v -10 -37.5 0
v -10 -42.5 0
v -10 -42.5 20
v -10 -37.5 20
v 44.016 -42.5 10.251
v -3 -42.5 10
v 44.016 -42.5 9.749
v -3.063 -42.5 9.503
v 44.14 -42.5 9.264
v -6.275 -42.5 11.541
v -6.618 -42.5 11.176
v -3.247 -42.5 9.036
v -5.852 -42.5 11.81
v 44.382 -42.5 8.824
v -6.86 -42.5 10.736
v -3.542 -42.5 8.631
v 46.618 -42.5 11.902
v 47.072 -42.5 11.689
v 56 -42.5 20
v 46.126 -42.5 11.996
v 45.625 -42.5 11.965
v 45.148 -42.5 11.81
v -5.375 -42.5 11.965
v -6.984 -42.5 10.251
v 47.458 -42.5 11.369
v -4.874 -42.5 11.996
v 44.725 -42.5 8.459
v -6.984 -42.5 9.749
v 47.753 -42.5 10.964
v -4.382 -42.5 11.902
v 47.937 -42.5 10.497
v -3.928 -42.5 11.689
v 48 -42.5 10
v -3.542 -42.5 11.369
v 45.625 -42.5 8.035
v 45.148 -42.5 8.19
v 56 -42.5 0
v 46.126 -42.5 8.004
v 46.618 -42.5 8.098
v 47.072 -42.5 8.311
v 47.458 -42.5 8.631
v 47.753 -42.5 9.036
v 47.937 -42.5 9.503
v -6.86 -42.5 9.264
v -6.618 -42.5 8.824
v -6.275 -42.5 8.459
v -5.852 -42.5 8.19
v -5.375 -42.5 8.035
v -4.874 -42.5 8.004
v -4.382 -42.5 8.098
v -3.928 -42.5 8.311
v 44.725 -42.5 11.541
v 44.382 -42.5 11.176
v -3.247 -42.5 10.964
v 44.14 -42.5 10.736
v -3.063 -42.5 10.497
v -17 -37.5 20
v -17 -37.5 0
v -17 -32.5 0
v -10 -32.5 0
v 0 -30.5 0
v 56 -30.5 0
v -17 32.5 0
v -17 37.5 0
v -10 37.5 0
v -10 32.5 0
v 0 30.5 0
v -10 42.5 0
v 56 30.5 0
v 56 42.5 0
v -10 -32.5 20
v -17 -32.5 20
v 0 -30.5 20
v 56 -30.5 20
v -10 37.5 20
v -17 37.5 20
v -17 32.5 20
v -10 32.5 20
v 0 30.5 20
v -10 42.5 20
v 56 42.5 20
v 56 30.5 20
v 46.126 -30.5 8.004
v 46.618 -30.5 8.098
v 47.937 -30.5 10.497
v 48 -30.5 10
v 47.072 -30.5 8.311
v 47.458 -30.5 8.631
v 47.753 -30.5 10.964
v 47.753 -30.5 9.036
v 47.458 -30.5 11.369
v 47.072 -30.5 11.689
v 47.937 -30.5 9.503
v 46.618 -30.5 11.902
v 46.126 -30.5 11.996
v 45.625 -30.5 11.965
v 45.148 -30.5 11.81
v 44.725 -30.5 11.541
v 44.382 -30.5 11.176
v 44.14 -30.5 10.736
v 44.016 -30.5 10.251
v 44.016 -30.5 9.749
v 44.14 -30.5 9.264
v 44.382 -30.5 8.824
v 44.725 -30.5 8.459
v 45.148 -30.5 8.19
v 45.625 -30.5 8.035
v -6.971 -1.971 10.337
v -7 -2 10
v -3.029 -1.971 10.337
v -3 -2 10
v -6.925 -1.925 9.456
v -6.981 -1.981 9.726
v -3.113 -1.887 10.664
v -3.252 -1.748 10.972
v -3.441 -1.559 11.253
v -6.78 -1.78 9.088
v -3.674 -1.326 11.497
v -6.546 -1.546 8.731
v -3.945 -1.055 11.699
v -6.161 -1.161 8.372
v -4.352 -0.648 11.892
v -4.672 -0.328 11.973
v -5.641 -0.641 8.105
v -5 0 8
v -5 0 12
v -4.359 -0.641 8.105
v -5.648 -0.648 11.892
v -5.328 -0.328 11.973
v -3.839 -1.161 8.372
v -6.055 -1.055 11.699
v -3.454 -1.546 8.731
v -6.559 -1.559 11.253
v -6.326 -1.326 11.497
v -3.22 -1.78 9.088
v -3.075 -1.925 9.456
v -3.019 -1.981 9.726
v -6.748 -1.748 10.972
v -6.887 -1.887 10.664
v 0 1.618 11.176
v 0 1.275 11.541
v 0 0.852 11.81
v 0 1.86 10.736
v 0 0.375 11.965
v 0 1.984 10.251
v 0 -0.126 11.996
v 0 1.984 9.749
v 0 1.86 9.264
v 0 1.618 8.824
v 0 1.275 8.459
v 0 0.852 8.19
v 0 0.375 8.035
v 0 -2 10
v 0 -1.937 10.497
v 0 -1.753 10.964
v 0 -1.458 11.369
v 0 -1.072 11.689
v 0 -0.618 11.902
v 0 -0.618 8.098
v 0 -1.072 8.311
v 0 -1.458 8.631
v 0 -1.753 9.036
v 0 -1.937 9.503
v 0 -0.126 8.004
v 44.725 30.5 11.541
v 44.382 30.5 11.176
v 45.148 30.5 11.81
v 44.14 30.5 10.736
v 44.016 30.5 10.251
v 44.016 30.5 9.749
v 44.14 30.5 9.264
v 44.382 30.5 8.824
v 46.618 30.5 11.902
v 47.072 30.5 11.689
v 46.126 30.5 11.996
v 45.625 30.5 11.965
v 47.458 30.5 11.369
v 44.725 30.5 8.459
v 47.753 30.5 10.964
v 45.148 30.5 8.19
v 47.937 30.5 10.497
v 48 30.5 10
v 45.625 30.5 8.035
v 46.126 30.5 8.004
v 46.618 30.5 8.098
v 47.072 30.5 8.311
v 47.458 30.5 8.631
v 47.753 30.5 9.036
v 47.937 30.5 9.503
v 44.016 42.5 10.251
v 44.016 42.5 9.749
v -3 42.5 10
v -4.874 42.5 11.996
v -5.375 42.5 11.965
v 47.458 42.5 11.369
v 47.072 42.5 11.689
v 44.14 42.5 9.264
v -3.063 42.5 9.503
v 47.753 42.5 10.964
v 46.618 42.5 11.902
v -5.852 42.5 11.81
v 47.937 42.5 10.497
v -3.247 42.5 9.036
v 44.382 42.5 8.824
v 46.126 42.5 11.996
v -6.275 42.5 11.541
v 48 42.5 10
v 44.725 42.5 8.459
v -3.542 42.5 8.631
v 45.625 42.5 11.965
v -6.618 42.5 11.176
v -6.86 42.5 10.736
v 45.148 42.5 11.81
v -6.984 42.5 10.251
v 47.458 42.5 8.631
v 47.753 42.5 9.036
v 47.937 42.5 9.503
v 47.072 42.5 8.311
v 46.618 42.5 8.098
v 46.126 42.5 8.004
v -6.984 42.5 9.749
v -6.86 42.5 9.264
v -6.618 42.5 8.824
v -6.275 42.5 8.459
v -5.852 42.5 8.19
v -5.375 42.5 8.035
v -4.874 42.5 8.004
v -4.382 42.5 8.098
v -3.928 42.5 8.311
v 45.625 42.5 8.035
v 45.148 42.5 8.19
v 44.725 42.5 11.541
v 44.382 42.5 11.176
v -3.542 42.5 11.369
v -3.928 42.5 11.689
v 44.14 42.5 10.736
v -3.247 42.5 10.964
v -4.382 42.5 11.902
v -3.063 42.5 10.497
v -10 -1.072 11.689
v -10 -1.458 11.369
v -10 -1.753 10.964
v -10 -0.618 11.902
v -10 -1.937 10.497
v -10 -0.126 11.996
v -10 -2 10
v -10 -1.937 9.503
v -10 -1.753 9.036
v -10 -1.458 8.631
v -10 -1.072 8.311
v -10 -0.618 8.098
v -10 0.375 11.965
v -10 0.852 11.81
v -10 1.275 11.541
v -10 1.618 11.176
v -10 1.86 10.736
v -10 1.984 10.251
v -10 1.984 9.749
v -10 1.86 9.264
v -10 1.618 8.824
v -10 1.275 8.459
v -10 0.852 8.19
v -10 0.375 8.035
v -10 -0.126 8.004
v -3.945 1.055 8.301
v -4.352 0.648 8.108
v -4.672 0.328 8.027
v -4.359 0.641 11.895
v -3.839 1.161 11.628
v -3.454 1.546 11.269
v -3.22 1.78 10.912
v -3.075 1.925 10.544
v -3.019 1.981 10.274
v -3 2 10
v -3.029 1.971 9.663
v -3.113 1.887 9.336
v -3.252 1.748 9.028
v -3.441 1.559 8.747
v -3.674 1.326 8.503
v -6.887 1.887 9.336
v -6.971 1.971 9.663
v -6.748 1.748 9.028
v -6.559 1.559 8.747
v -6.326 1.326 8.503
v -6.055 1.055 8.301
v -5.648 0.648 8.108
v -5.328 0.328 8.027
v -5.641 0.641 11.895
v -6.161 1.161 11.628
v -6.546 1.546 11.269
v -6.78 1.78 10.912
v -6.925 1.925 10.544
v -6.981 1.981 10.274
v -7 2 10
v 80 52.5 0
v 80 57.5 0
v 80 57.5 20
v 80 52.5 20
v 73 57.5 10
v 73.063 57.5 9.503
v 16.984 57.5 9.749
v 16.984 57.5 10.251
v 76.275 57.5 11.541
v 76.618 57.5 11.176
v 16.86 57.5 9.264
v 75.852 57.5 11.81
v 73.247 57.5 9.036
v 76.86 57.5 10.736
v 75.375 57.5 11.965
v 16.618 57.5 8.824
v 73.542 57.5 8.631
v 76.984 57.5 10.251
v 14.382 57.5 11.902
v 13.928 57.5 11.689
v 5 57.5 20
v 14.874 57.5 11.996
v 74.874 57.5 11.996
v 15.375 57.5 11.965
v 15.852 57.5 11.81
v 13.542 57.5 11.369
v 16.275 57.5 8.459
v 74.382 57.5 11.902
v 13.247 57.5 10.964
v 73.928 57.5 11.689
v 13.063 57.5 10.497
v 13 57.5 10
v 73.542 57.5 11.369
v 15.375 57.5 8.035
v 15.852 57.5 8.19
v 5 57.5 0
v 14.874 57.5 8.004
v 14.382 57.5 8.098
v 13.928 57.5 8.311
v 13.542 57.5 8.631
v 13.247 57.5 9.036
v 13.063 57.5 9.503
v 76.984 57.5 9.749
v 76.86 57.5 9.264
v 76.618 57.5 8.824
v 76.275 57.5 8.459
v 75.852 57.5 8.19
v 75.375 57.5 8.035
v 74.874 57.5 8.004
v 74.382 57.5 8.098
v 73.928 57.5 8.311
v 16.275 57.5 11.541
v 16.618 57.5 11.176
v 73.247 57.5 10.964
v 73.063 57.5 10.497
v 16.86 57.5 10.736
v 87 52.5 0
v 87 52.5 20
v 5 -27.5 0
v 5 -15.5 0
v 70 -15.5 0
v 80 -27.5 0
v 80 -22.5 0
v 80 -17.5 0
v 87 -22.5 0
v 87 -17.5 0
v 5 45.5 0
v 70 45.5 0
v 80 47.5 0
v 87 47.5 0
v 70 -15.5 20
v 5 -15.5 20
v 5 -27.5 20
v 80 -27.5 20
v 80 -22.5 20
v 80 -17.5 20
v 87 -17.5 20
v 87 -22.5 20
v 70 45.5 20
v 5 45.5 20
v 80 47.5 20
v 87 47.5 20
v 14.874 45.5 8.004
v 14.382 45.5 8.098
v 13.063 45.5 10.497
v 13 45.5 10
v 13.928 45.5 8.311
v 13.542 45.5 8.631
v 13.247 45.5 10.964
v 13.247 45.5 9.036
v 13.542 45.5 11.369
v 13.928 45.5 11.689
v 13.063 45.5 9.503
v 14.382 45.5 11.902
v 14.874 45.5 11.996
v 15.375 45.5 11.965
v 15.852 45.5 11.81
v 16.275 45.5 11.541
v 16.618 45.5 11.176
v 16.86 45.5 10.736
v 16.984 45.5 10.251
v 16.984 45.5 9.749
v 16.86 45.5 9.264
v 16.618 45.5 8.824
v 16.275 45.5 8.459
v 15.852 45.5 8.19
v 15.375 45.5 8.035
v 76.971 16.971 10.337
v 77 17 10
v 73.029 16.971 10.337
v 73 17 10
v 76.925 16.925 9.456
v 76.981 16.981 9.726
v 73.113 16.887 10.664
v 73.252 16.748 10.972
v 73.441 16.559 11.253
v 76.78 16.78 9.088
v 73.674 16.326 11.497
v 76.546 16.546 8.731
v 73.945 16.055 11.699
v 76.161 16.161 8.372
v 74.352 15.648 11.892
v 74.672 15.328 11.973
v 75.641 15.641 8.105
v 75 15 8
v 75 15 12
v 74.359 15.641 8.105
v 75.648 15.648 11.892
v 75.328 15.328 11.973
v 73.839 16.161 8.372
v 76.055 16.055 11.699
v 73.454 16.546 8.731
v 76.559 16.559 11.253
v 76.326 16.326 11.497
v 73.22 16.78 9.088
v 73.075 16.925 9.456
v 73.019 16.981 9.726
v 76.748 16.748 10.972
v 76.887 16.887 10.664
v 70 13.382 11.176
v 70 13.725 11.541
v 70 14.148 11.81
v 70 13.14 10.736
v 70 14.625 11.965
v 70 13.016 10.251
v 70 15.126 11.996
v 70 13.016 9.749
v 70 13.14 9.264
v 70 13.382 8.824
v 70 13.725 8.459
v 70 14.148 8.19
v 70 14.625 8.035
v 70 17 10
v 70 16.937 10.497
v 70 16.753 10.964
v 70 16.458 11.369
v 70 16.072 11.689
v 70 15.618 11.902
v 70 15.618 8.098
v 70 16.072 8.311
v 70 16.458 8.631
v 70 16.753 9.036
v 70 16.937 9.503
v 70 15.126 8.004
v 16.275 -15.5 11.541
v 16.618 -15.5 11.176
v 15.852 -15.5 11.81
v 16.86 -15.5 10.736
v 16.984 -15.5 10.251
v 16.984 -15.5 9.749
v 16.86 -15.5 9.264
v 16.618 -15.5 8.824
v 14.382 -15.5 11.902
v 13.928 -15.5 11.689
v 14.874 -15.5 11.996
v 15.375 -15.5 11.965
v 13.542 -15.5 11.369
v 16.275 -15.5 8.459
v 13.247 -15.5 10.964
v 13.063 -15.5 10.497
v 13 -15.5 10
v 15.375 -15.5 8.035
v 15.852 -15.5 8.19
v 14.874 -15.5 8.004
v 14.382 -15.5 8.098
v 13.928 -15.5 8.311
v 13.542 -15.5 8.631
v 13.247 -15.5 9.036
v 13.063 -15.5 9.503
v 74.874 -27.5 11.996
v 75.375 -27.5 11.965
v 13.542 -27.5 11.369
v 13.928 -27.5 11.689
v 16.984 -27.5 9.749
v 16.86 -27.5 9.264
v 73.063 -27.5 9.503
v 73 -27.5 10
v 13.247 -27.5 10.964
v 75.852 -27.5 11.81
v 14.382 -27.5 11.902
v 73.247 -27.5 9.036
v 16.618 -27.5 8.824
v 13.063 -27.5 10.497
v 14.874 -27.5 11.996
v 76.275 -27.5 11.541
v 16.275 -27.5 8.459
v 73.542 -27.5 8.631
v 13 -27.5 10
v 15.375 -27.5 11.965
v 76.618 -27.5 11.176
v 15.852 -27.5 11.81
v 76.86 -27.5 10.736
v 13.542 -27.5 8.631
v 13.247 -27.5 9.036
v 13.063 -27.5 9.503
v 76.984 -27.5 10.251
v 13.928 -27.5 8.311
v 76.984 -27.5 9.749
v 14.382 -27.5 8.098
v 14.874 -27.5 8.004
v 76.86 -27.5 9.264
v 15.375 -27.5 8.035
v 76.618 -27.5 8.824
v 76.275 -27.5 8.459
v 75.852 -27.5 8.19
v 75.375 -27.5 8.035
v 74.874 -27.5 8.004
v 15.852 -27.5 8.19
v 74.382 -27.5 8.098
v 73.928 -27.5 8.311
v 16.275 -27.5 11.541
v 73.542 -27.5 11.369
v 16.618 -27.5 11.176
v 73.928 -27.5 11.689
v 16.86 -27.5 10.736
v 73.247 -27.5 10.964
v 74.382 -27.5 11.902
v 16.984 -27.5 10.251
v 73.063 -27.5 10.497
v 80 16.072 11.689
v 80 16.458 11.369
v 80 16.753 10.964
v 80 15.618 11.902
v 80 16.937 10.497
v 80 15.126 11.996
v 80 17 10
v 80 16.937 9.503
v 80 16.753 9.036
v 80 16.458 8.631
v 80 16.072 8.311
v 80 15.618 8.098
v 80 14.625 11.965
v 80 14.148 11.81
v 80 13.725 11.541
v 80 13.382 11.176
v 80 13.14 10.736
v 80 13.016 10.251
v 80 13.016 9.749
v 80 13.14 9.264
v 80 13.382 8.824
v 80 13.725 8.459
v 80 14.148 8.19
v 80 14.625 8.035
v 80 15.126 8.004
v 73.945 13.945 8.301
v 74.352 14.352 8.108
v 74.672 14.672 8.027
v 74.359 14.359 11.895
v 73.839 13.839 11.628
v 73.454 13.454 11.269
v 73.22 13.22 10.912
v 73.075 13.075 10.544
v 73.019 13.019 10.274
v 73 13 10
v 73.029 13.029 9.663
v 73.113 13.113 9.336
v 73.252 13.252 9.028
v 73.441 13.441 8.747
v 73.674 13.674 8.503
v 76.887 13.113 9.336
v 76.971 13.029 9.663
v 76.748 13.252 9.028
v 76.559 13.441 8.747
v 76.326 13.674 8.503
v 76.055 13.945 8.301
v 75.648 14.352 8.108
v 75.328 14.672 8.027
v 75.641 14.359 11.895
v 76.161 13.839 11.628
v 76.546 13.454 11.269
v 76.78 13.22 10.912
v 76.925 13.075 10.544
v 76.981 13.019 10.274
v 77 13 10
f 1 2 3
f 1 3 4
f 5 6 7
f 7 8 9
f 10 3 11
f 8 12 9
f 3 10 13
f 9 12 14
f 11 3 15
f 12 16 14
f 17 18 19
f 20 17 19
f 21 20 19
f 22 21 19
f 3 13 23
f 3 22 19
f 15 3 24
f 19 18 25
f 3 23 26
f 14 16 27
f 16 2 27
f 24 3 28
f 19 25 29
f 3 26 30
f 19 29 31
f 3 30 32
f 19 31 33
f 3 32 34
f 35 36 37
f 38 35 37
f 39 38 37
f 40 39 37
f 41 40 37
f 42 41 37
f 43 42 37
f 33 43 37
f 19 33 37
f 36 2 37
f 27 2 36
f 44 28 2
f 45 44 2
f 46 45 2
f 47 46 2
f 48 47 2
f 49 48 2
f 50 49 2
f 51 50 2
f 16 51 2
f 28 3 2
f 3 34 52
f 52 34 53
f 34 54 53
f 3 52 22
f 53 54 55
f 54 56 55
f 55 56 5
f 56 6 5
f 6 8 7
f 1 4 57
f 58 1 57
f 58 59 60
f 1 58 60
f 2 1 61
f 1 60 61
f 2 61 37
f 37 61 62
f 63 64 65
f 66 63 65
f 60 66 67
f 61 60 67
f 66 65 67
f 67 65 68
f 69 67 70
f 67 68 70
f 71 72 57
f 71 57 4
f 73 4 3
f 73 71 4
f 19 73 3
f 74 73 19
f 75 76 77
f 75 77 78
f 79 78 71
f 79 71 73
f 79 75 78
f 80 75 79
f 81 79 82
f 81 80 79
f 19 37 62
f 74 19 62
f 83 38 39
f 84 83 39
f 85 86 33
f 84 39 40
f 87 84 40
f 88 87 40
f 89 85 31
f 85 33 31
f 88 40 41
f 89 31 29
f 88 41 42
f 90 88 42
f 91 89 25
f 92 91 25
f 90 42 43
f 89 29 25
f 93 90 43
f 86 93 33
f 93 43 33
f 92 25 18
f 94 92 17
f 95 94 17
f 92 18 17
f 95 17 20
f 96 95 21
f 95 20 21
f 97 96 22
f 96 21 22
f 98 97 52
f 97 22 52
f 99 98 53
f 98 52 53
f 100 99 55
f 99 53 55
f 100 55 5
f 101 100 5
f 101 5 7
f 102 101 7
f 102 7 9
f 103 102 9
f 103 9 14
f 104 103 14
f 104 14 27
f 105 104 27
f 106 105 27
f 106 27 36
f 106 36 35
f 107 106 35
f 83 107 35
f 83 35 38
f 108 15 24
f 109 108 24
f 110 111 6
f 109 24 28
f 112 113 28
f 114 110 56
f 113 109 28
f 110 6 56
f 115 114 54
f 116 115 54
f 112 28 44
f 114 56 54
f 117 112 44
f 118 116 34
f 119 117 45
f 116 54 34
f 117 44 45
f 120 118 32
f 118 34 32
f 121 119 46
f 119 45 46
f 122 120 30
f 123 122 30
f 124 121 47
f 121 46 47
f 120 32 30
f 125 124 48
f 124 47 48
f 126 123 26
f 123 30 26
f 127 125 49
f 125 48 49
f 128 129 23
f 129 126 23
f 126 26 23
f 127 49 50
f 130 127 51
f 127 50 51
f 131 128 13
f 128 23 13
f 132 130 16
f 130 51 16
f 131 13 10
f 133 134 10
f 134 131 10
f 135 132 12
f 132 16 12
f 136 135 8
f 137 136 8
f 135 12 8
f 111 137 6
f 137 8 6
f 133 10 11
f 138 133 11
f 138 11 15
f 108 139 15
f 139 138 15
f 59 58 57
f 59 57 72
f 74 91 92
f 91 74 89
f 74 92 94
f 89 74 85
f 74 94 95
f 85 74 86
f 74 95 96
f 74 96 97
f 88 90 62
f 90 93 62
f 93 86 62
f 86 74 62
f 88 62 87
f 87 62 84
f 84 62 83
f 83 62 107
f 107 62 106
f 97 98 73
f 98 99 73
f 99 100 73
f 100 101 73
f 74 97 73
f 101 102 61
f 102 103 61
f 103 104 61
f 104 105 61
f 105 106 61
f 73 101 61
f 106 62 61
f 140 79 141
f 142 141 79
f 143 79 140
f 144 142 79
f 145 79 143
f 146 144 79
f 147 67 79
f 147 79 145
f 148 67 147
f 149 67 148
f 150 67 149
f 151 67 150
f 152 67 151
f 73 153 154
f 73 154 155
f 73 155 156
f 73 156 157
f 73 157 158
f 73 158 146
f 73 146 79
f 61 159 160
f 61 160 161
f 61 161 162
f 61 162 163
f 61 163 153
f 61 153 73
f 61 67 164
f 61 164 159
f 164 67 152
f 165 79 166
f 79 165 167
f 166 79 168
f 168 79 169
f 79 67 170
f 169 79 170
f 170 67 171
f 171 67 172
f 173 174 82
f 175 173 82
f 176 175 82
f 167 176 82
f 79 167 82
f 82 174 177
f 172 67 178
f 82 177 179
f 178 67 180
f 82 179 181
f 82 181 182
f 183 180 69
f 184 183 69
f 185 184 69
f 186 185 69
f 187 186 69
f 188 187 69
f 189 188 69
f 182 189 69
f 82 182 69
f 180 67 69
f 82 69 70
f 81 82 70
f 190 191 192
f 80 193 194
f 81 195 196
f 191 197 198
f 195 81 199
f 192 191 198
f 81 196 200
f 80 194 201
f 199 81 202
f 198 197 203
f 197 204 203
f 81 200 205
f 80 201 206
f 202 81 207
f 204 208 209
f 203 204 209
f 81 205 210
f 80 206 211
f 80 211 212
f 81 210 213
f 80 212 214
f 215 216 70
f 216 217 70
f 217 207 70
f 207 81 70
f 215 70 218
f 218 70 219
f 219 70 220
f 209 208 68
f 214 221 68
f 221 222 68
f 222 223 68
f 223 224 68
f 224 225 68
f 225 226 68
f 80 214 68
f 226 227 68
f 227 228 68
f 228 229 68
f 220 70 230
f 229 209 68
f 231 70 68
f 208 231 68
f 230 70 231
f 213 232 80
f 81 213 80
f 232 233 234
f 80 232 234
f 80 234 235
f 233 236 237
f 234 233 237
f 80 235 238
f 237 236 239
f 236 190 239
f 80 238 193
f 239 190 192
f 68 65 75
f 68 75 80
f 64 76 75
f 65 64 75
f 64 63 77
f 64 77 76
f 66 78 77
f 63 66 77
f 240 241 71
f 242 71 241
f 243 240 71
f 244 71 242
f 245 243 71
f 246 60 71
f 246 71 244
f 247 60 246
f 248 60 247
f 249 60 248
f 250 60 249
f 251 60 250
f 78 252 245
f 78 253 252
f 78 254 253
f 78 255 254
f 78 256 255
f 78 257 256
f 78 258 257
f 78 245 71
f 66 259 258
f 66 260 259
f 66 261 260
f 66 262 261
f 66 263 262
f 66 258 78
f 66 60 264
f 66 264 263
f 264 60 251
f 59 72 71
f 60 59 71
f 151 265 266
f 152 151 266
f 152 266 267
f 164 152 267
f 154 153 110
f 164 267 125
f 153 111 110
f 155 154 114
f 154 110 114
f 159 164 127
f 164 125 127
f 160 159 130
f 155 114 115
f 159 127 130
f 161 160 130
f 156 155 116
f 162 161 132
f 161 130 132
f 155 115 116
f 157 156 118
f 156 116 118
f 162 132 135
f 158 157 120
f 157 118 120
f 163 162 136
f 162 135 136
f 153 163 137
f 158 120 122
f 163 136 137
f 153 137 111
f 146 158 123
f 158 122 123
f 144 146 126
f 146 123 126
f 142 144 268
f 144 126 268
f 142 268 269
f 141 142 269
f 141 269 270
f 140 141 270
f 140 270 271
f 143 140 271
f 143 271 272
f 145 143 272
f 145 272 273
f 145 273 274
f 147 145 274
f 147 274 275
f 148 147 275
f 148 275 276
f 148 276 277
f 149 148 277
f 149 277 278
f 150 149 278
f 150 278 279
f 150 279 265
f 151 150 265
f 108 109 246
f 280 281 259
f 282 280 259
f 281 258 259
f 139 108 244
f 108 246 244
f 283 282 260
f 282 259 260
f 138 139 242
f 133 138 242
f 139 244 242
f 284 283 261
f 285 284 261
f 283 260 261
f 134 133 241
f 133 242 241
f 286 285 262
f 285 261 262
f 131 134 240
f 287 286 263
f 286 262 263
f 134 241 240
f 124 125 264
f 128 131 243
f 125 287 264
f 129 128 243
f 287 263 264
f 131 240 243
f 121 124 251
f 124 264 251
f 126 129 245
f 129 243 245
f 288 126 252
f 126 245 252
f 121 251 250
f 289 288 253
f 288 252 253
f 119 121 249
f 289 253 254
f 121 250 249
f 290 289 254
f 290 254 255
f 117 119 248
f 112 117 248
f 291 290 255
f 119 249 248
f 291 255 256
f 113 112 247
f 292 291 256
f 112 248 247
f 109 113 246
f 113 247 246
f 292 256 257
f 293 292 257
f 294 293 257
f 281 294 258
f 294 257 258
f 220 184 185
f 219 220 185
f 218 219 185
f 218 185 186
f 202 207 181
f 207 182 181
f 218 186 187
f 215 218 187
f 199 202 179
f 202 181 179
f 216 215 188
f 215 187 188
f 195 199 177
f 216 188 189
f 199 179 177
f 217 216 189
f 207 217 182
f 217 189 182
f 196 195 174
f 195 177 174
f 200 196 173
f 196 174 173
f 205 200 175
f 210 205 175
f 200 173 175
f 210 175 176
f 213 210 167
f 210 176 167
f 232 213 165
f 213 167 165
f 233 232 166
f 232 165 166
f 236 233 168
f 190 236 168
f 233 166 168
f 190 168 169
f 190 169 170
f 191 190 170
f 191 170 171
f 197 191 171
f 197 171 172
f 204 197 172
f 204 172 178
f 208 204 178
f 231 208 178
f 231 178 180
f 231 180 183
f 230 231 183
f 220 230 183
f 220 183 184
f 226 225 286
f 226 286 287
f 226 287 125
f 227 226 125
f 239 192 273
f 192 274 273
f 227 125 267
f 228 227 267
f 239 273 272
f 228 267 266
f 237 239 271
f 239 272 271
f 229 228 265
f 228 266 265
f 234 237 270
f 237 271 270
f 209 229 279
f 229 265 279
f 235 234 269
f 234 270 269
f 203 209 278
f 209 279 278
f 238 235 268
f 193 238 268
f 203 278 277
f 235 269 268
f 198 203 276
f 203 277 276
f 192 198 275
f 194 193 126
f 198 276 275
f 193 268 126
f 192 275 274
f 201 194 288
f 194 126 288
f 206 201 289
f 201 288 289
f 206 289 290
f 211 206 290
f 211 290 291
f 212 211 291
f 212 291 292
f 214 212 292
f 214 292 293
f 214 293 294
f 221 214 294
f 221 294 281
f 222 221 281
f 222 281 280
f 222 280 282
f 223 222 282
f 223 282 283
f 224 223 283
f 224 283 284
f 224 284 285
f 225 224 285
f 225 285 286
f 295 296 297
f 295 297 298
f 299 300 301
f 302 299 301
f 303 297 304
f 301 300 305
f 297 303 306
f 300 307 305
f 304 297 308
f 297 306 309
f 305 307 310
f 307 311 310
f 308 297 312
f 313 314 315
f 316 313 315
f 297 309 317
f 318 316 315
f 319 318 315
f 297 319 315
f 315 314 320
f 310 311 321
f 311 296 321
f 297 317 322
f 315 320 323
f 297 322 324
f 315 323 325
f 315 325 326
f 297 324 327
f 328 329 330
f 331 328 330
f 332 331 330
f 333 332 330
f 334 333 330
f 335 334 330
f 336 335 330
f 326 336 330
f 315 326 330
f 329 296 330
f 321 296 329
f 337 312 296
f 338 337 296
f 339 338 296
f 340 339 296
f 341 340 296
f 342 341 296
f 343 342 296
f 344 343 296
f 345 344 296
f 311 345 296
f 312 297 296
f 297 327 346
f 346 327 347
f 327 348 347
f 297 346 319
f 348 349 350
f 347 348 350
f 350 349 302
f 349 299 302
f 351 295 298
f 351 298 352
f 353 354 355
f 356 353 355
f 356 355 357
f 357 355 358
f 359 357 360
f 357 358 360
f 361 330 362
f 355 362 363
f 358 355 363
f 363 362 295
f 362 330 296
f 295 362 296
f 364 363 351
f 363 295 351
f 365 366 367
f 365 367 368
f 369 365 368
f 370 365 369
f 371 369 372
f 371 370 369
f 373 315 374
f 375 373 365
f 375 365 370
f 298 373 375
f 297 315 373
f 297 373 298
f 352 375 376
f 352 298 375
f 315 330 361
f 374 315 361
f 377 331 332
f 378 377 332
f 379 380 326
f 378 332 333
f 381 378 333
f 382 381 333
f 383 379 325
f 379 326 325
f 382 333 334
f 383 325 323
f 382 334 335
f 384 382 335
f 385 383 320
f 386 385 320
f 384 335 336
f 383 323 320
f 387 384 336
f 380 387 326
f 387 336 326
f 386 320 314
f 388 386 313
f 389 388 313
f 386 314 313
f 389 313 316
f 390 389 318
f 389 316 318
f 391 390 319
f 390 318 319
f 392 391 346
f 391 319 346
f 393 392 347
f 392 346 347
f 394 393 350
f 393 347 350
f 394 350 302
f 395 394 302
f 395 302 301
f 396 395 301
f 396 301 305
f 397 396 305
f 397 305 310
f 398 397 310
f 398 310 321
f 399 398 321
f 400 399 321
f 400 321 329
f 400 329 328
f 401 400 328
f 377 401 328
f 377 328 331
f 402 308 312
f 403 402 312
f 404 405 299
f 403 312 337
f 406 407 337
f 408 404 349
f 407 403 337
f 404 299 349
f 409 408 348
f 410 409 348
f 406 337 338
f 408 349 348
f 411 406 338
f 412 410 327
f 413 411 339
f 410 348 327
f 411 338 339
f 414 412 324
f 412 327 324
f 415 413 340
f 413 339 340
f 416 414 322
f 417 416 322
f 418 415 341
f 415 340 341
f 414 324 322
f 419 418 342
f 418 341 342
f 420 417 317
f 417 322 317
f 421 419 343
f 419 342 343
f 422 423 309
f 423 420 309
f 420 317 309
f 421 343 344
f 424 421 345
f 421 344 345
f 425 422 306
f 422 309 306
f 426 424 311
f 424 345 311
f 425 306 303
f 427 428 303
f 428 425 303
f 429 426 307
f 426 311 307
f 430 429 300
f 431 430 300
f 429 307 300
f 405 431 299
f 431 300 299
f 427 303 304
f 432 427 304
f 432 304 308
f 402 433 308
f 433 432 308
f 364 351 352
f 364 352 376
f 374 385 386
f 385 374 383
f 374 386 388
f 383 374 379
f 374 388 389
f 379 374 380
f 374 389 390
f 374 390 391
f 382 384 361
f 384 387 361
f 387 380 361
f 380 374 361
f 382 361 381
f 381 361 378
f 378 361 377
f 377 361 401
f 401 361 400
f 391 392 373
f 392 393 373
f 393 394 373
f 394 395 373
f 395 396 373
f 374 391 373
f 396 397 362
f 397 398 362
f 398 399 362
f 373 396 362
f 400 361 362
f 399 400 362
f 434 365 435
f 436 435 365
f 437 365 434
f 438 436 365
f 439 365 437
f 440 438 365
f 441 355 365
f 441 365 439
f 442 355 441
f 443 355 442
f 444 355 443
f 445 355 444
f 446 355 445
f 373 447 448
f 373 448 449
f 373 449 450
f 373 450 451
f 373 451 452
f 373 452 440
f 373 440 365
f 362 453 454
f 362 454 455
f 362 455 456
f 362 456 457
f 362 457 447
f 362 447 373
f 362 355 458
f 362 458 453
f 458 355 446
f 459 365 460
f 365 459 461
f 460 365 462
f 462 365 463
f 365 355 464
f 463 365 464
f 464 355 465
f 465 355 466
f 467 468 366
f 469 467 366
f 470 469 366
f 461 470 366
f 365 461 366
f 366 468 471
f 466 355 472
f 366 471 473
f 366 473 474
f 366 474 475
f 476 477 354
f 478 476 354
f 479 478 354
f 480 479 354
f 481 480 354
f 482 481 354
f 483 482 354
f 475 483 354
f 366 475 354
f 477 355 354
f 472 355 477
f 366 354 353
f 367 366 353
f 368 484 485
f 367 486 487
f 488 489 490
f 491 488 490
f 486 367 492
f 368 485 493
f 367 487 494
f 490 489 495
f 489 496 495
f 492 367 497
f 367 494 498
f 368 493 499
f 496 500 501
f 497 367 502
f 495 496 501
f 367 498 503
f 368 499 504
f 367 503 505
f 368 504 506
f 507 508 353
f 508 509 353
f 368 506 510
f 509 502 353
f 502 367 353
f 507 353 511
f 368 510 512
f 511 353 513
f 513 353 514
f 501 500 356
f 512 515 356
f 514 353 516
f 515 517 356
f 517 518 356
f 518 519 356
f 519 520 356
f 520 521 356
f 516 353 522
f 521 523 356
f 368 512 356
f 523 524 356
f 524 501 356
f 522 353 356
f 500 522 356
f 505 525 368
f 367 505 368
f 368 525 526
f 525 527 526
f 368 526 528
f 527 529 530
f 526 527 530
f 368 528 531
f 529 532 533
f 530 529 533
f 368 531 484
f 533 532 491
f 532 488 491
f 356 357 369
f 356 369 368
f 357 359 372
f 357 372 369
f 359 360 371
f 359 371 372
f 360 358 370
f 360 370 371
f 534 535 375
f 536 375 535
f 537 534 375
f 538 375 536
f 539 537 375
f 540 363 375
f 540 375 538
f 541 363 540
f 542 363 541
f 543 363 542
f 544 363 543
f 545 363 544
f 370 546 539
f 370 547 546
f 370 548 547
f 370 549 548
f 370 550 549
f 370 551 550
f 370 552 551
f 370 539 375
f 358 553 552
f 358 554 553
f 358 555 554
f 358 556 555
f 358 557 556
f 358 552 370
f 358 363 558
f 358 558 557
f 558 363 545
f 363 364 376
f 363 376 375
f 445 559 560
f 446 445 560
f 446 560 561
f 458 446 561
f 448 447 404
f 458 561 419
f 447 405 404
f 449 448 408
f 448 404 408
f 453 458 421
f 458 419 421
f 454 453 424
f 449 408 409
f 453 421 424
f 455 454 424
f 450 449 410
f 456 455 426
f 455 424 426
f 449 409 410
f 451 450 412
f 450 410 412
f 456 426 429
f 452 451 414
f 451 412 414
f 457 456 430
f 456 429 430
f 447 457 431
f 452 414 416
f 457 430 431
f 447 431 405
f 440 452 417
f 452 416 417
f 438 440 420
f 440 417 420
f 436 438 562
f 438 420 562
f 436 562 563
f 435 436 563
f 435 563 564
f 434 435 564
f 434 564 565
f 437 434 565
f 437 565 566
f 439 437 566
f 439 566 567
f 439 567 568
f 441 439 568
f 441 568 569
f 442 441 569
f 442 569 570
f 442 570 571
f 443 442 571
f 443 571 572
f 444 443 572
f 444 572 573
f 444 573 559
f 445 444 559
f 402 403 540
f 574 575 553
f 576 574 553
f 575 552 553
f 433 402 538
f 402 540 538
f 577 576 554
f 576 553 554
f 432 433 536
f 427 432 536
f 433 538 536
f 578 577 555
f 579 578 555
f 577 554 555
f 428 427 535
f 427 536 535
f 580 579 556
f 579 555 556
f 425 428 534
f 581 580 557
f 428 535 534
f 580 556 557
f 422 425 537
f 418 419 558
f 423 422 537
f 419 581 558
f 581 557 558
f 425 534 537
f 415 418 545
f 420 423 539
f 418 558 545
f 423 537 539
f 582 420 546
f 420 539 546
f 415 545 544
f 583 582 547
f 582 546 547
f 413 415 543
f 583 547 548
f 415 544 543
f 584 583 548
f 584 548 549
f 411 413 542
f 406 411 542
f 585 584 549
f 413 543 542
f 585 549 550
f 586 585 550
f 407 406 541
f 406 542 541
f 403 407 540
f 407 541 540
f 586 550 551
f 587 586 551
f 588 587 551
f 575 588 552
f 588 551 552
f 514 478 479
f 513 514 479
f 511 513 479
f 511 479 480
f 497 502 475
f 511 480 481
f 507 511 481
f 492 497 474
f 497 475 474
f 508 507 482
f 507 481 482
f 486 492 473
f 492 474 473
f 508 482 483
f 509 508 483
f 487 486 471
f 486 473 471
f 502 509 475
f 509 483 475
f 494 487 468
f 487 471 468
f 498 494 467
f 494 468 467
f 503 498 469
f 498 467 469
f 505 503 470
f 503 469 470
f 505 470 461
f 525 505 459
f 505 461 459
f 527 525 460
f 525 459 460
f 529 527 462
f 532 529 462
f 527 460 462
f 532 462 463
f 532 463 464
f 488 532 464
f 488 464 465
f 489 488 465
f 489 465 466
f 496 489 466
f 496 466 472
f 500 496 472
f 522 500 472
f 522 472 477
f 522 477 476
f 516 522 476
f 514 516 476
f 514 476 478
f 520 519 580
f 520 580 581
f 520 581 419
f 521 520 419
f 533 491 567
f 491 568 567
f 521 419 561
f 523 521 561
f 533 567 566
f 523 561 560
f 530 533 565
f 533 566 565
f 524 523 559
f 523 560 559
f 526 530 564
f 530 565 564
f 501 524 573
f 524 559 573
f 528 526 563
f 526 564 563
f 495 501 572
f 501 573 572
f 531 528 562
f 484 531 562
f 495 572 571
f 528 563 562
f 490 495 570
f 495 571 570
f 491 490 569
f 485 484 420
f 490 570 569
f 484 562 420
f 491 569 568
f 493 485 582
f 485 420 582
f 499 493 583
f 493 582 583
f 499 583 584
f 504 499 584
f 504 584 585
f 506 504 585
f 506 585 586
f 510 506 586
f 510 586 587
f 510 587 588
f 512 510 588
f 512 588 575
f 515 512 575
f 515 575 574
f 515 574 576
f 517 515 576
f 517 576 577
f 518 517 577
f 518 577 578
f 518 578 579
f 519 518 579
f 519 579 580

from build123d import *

# Parameters (mm, degrees)
PAD_DEPTH       = 20
SKETCH004_R     = 2
POCKET002_DEPTH = 66.001
SKETCH005_R     = 2
POCKET003_DEPTH = 85.001
PAD001_DEPTH    = 20
SKETCH007_R     = 2
POCKET004_DEPTH = 75.001
SKETCH008_R     = 2
POCKET005_DEPTH = 85.001


with BuildPart() as soporte_agujero_superior_lateral:
    # Sketch → Pad (new body)
    with BuildSketch(Plane.XY):
        Polygon((-10, -42.5), (56, -42.5), (56, -30.5), (0, -30.5), (0, 30.5), (56, 30.5), (56, 42.5), (-10, 42.5), (-10, 37.5), (-17, 37.5), (-17, 32.5), (-10, 32.5), (-10, -32.5), (-17, -32.5), (-17, -37.5), (-10, -37.5), align=None)
    extrude(amount=PAD_DEPTH)

    # Sketch004 → Pocket002 (cut, through all)
    with BuildSketch(Plane(origin=(-10, 0, 0), x_dir=(0, -1, 0), z_dir=(-1, 0, 0))):
        with Locations((0, 10)):
            Circle(SKETCH004_R)
    extrude(amount=-POCKET002_DEPTH, mode=Mode.SUBTRACT)

    # Sketch005 → Pocket003 (cut, through all)
    with BuildSketch(Plane.XZ.offset(42.5)):
        with Locations((-5, 10)):
            Circle(SKETCH005_R)
        with Locations((46, 10)):
            Circle(SKETCH005_R)
    extrude(amount=-POCKET003_DEPTH, mode=Mode.SUBTRACT)


with BuildPart() as soporte_agujero_superior_lateral001:
    # Sketch006 → Pad001 (new body)
    with BuildSketch(Plane(origin=(70, 15, 0), x_dir=(-1, 0, 0), z_dir=(0, 0, 1))):
        Polygon((-10, -42.5), (65, -42.5), (65, -30.5), (0, -30.5), (0, 30.5), (65, 30.5), (65, 42.5), (-10, 42.5), (-10, 37.5), (-17, 37.5), (-17, 32.5), (-10, 32.5), (-10, -32.5), (-17, -32.5), (-17, -37.5), (-10, -37.5), align=None)
    extrude(amount=PAD001_DEPTH)

    # Sketch007 → Pocket004 (cut, through all)
    with BuildSketch(Plane(origin=(80, 15, 0), x_dir=(0, 1, 0), z_dir=(1, 0, 0))):
        with Locations((0, 10)):
            Circle(SKETCH007_R)
    extrude(amount=-POCKET004_DEPTH, mode=Mode.SUBTRACT)

    # Sketch008 → Pocket005 (cut, through all)
    with BuildSketch(Plane(origin=(70, 57.5, 0), x_dir=(-1, 0, 0), z_dir=(0, 1, 0))):
        with Locations((-5, 10)):
            Circle(SKETCH008_R)
        with Locations((55, 10)):
            Circle(SKETCH008_R)
    extrude(amount=-POCKET005_DEPTH, mode=Mode.SUBTRACT)


solid = Compound([soporte_agujero_superior_lateral.part, soporte_agujero_superior_lateral001.part])
